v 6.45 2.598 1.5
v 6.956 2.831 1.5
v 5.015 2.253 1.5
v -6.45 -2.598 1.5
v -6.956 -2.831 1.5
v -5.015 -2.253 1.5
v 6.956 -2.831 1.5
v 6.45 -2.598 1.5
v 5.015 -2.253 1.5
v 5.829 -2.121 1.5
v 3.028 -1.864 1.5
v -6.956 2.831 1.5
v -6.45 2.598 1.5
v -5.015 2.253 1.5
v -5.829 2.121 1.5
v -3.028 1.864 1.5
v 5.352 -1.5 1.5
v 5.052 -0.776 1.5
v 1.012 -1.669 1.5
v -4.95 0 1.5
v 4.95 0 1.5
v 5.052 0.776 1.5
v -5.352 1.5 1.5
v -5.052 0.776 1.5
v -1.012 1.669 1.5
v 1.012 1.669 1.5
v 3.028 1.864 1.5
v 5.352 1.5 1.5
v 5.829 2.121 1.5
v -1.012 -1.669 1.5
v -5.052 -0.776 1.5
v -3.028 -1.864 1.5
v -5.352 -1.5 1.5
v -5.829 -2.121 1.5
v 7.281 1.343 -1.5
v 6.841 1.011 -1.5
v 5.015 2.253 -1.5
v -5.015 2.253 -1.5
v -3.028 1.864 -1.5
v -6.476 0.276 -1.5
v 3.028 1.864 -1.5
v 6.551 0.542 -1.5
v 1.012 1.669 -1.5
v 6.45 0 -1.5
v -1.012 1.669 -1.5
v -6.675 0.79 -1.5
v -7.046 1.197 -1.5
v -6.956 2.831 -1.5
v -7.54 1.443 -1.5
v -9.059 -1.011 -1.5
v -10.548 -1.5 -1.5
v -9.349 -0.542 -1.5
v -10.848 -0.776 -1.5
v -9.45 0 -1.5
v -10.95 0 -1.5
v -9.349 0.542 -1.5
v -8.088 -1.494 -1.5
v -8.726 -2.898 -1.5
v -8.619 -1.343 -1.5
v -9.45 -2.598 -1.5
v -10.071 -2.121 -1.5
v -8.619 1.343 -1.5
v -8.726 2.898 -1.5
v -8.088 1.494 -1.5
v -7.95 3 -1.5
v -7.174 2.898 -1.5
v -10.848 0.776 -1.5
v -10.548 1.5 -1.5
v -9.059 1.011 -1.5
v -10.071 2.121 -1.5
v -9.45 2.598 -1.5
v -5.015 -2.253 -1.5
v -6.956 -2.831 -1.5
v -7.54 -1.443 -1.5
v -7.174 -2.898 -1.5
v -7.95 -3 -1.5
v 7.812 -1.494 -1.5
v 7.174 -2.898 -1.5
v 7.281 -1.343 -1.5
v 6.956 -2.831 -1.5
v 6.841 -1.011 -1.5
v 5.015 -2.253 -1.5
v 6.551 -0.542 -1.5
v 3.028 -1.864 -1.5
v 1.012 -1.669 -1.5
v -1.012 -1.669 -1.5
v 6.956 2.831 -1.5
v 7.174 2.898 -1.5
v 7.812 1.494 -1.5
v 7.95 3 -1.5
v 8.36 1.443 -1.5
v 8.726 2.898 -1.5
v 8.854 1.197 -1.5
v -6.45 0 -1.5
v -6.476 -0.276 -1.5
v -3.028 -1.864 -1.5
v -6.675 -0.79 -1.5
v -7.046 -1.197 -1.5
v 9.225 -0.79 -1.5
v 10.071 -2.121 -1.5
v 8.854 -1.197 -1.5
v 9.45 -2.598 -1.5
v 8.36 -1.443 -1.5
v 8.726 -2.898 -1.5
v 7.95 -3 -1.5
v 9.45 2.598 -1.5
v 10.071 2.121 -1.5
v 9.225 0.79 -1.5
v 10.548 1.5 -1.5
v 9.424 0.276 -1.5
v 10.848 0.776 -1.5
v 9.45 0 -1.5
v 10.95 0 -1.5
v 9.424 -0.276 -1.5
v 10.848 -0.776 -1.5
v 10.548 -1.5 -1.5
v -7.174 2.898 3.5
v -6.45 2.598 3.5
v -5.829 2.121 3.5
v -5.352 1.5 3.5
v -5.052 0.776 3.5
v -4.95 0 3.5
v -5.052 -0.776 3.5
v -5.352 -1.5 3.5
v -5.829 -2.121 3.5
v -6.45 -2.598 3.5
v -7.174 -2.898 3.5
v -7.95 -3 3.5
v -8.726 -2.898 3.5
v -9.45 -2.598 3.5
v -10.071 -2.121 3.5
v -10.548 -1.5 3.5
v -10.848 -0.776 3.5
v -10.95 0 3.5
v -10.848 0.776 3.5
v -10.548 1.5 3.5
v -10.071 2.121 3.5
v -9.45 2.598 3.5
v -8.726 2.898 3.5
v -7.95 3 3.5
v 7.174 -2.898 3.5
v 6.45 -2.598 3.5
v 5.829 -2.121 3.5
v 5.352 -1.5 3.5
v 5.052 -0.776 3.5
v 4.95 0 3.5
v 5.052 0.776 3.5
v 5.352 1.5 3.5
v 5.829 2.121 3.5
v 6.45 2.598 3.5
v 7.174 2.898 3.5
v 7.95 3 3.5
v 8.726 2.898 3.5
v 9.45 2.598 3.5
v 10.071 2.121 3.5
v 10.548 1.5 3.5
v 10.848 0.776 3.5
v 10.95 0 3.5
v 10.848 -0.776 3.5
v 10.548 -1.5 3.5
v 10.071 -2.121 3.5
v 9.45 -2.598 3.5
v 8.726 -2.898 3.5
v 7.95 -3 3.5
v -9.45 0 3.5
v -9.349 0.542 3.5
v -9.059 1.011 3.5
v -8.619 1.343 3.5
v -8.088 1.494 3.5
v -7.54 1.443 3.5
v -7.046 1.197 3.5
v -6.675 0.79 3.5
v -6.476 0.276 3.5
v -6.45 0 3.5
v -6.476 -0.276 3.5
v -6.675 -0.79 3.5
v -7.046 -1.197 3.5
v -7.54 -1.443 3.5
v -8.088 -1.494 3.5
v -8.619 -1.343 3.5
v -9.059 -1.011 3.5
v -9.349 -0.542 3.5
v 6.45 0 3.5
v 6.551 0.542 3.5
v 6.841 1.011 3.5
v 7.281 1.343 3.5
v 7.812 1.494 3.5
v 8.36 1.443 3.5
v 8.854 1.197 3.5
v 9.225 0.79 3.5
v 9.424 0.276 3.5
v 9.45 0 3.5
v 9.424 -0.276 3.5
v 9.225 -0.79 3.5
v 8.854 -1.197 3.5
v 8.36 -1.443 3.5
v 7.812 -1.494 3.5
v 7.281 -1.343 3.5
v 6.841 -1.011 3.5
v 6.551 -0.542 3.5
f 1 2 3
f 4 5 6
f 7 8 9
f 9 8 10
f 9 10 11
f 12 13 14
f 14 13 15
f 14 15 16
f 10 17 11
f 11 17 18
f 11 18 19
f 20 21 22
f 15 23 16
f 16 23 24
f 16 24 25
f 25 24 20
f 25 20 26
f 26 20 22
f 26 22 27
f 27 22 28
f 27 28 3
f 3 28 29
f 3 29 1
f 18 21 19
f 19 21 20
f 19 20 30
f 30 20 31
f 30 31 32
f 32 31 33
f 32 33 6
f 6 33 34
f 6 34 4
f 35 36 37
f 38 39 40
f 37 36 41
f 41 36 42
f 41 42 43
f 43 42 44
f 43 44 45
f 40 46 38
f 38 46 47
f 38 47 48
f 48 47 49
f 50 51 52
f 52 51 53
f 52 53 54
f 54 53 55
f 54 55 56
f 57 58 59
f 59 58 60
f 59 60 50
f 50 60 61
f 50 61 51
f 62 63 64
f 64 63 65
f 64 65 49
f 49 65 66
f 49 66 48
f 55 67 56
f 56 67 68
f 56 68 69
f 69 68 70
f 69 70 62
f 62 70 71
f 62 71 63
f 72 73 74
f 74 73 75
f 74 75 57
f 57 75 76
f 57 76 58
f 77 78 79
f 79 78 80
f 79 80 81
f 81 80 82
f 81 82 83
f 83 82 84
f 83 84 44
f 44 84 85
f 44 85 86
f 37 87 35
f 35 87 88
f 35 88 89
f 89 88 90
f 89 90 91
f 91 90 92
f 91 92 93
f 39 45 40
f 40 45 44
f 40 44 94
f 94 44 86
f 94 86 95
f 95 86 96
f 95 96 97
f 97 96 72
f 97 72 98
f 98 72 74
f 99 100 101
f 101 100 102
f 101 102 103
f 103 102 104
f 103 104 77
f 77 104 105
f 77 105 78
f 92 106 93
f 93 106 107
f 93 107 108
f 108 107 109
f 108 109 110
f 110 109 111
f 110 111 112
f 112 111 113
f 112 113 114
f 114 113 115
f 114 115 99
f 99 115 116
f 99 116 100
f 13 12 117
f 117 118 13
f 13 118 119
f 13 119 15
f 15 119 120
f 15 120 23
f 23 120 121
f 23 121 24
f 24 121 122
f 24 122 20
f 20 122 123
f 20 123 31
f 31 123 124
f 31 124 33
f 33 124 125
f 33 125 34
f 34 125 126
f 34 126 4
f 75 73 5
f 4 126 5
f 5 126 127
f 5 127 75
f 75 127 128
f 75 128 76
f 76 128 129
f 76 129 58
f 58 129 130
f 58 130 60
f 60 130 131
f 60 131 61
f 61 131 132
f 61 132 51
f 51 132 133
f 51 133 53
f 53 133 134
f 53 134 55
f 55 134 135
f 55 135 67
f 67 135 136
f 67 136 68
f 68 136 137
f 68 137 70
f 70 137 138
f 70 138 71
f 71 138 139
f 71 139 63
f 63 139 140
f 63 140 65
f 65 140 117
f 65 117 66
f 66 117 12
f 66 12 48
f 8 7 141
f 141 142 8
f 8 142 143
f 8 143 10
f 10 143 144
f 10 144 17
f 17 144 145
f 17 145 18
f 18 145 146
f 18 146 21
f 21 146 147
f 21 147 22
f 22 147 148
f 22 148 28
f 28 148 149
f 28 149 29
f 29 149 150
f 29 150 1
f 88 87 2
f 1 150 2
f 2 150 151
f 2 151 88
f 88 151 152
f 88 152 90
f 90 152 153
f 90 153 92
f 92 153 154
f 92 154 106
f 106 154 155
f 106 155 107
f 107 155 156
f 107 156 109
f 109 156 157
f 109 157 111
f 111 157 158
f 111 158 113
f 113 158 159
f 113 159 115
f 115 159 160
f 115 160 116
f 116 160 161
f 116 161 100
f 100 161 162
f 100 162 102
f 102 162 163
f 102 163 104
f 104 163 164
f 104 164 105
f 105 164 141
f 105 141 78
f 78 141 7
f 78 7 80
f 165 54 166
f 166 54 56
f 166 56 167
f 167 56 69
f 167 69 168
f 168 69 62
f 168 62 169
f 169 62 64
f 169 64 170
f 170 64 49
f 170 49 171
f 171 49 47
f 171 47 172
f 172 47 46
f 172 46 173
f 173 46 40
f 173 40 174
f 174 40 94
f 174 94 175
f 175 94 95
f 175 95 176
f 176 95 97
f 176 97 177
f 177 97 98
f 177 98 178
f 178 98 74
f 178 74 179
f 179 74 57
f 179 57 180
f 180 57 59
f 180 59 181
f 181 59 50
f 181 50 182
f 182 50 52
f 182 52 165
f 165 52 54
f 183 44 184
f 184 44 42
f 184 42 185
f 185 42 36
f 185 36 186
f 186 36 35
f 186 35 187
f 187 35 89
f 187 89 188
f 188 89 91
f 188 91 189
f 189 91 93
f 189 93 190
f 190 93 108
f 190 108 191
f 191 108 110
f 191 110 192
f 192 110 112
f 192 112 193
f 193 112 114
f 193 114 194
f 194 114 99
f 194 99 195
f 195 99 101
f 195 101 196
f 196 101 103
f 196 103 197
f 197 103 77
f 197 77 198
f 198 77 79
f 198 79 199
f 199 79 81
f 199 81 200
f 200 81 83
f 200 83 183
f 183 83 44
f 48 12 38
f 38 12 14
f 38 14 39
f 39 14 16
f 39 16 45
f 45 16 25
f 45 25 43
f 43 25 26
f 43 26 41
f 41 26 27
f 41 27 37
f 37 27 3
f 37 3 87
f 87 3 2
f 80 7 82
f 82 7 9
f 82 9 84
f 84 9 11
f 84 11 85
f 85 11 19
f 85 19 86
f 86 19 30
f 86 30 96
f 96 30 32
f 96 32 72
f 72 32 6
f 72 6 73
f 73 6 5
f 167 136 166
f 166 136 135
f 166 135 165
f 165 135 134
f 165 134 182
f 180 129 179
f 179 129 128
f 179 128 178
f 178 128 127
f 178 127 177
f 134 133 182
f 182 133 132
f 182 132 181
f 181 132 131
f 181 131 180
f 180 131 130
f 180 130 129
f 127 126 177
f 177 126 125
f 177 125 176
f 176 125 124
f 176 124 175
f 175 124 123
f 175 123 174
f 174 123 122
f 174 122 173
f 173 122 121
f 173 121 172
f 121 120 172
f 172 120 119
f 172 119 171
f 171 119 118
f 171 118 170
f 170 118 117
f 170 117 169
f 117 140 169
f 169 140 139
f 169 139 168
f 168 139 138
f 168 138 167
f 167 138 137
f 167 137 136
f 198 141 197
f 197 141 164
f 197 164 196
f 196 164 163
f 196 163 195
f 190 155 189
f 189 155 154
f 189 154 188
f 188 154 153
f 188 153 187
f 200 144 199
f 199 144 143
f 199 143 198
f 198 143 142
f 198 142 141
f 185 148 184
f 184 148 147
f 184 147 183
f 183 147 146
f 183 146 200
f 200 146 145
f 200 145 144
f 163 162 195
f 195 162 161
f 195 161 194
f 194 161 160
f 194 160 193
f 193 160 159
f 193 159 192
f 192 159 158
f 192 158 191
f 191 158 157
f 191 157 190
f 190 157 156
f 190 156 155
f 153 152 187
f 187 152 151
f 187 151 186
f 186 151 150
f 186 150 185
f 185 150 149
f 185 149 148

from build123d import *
from build123d.topology import SkipClean

# Parameters (mm, degrees)
SKETCH1_R           = 1.5
BOSS_EXTRUDE1_DEPTH = 1.5
SKETCH2_OUTSIDE_W   = 28.48
SKETCH2_OUTSIDE_H   = 12.58
CUT_EXTRUDE1_DEPTH  = 3
BOSS_EXTRUDE2_START = 2
SKETCH3_R           = 3
SKETCH3_R_2         = 1.5
BOSS_EXTRUDE2_DEPTH = 2


with BuildPart() as part:
    # Sketch1 → Boss-Extrude1 (new, symmetric)
    with BuildSketch(Plane.XY):
        with BuildLine():
            Line((-7.95, 3), (7.95, 3))
            ThreePointArc((7.95, 3), (10.95, 0), (7.95, -3))
            Line((7.95, -3), (-7.95, -3))
            ThreePointArc((-7.95, -3), (-10.95, 0), (-7.95, 3))
        make_face()
        with Locations((-7.95, 0)):
            Circle(SKETCH1_R, mode=Mode.SUBTRACT)
        with Locations((7.95, 0)):
            Circle(SKETCH1_R, mode=Mode.SUBTRACT)
    extrude(amount=BOSS_EXTRUDE1_DEPTH, both=True)

    # Sketch2 outside → Cut-Extrude1 (cut)
    with SkipClean():  # the faces are left unmerged after this step: merging them gives an invalid solid
        with BuildSketch(Plane.XY.offset(1.5)):
            Rectangle(SKETCH2_OUTSIDE_W, SKETCH2_OUTSIDE_H)
            with BuildLine():
                ThreePointArc((-6.95625, 2.830629071), (-10.95, 0), (-6.95625, -2.830629071))
                ThreePointArc((-6.95625, -2.830629071), (0, -1.645032568), (6.95625, -2.830629071))
                ThreePointArc((6.95625, -2.830629071), (10.95, 0), (6.95625, 2.830629071))
                ThreePointArc((6.95625, 2.830629071), (0, 1.645032568), (-6.95625, 2.830629071))
            make_face(mode=Mode.SUBTRACT)
        extrude(amount=-CUT_EXTRUDE1_DEPTH, mode=Mode.SUBTRACT)

    # Sketch3 → Boss-Extrude2 (add)
    # profile 1 of 2: a face of its own
    with SkipClean():  # the faces are left unmerged after this step: merging them gives an invalid solid
        with BuildSketch(Plane.XY.offset(1.5).offset(BOSS_EXTRUDE2_START)):
            with Locations(Location((-7.95, 0, 0), (0, 0, 289.344662967))):
                Circle(SKETCH3_R)
            with Locations((-7.95, 0)):
                Circle(SKETCH3_R_2, mode=Mode.SUBTRACT)
        # profile 2 of 2: a face of its own
        with BuildSketch(Plane.XY.offset(1.5).offset(BOSS_EXTRUDE2_START)):
            with Locations(Location((7.95, 0, 0), (0, 0, 250.655337033))):
                Circle(SKETCH3_R)
            with Locations((7.95, 0)):
                Circle(SKETCH3_R_2, mode=Mode.SUBTRACT)
        extrude(amount=-BOSS_EXTRUDE2_DEPTH)


solid = part.part
